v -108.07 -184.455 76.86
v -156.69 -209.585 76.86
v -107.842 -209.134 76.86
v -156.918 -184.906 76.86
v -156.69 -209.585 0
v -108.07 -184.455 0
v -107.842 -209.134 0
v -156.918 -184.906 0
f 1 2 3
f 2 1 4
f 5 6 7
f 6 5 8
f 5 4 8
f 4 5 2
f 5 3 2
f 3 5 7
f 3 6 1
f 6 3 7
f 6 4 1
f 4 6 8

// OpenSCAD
translate([-132.380, -197.020, 0]) rotate([0, 0, -89.470]) translate([-12.340, -24.425, 0]) cube([24.680, 48.850, 76.860]);
